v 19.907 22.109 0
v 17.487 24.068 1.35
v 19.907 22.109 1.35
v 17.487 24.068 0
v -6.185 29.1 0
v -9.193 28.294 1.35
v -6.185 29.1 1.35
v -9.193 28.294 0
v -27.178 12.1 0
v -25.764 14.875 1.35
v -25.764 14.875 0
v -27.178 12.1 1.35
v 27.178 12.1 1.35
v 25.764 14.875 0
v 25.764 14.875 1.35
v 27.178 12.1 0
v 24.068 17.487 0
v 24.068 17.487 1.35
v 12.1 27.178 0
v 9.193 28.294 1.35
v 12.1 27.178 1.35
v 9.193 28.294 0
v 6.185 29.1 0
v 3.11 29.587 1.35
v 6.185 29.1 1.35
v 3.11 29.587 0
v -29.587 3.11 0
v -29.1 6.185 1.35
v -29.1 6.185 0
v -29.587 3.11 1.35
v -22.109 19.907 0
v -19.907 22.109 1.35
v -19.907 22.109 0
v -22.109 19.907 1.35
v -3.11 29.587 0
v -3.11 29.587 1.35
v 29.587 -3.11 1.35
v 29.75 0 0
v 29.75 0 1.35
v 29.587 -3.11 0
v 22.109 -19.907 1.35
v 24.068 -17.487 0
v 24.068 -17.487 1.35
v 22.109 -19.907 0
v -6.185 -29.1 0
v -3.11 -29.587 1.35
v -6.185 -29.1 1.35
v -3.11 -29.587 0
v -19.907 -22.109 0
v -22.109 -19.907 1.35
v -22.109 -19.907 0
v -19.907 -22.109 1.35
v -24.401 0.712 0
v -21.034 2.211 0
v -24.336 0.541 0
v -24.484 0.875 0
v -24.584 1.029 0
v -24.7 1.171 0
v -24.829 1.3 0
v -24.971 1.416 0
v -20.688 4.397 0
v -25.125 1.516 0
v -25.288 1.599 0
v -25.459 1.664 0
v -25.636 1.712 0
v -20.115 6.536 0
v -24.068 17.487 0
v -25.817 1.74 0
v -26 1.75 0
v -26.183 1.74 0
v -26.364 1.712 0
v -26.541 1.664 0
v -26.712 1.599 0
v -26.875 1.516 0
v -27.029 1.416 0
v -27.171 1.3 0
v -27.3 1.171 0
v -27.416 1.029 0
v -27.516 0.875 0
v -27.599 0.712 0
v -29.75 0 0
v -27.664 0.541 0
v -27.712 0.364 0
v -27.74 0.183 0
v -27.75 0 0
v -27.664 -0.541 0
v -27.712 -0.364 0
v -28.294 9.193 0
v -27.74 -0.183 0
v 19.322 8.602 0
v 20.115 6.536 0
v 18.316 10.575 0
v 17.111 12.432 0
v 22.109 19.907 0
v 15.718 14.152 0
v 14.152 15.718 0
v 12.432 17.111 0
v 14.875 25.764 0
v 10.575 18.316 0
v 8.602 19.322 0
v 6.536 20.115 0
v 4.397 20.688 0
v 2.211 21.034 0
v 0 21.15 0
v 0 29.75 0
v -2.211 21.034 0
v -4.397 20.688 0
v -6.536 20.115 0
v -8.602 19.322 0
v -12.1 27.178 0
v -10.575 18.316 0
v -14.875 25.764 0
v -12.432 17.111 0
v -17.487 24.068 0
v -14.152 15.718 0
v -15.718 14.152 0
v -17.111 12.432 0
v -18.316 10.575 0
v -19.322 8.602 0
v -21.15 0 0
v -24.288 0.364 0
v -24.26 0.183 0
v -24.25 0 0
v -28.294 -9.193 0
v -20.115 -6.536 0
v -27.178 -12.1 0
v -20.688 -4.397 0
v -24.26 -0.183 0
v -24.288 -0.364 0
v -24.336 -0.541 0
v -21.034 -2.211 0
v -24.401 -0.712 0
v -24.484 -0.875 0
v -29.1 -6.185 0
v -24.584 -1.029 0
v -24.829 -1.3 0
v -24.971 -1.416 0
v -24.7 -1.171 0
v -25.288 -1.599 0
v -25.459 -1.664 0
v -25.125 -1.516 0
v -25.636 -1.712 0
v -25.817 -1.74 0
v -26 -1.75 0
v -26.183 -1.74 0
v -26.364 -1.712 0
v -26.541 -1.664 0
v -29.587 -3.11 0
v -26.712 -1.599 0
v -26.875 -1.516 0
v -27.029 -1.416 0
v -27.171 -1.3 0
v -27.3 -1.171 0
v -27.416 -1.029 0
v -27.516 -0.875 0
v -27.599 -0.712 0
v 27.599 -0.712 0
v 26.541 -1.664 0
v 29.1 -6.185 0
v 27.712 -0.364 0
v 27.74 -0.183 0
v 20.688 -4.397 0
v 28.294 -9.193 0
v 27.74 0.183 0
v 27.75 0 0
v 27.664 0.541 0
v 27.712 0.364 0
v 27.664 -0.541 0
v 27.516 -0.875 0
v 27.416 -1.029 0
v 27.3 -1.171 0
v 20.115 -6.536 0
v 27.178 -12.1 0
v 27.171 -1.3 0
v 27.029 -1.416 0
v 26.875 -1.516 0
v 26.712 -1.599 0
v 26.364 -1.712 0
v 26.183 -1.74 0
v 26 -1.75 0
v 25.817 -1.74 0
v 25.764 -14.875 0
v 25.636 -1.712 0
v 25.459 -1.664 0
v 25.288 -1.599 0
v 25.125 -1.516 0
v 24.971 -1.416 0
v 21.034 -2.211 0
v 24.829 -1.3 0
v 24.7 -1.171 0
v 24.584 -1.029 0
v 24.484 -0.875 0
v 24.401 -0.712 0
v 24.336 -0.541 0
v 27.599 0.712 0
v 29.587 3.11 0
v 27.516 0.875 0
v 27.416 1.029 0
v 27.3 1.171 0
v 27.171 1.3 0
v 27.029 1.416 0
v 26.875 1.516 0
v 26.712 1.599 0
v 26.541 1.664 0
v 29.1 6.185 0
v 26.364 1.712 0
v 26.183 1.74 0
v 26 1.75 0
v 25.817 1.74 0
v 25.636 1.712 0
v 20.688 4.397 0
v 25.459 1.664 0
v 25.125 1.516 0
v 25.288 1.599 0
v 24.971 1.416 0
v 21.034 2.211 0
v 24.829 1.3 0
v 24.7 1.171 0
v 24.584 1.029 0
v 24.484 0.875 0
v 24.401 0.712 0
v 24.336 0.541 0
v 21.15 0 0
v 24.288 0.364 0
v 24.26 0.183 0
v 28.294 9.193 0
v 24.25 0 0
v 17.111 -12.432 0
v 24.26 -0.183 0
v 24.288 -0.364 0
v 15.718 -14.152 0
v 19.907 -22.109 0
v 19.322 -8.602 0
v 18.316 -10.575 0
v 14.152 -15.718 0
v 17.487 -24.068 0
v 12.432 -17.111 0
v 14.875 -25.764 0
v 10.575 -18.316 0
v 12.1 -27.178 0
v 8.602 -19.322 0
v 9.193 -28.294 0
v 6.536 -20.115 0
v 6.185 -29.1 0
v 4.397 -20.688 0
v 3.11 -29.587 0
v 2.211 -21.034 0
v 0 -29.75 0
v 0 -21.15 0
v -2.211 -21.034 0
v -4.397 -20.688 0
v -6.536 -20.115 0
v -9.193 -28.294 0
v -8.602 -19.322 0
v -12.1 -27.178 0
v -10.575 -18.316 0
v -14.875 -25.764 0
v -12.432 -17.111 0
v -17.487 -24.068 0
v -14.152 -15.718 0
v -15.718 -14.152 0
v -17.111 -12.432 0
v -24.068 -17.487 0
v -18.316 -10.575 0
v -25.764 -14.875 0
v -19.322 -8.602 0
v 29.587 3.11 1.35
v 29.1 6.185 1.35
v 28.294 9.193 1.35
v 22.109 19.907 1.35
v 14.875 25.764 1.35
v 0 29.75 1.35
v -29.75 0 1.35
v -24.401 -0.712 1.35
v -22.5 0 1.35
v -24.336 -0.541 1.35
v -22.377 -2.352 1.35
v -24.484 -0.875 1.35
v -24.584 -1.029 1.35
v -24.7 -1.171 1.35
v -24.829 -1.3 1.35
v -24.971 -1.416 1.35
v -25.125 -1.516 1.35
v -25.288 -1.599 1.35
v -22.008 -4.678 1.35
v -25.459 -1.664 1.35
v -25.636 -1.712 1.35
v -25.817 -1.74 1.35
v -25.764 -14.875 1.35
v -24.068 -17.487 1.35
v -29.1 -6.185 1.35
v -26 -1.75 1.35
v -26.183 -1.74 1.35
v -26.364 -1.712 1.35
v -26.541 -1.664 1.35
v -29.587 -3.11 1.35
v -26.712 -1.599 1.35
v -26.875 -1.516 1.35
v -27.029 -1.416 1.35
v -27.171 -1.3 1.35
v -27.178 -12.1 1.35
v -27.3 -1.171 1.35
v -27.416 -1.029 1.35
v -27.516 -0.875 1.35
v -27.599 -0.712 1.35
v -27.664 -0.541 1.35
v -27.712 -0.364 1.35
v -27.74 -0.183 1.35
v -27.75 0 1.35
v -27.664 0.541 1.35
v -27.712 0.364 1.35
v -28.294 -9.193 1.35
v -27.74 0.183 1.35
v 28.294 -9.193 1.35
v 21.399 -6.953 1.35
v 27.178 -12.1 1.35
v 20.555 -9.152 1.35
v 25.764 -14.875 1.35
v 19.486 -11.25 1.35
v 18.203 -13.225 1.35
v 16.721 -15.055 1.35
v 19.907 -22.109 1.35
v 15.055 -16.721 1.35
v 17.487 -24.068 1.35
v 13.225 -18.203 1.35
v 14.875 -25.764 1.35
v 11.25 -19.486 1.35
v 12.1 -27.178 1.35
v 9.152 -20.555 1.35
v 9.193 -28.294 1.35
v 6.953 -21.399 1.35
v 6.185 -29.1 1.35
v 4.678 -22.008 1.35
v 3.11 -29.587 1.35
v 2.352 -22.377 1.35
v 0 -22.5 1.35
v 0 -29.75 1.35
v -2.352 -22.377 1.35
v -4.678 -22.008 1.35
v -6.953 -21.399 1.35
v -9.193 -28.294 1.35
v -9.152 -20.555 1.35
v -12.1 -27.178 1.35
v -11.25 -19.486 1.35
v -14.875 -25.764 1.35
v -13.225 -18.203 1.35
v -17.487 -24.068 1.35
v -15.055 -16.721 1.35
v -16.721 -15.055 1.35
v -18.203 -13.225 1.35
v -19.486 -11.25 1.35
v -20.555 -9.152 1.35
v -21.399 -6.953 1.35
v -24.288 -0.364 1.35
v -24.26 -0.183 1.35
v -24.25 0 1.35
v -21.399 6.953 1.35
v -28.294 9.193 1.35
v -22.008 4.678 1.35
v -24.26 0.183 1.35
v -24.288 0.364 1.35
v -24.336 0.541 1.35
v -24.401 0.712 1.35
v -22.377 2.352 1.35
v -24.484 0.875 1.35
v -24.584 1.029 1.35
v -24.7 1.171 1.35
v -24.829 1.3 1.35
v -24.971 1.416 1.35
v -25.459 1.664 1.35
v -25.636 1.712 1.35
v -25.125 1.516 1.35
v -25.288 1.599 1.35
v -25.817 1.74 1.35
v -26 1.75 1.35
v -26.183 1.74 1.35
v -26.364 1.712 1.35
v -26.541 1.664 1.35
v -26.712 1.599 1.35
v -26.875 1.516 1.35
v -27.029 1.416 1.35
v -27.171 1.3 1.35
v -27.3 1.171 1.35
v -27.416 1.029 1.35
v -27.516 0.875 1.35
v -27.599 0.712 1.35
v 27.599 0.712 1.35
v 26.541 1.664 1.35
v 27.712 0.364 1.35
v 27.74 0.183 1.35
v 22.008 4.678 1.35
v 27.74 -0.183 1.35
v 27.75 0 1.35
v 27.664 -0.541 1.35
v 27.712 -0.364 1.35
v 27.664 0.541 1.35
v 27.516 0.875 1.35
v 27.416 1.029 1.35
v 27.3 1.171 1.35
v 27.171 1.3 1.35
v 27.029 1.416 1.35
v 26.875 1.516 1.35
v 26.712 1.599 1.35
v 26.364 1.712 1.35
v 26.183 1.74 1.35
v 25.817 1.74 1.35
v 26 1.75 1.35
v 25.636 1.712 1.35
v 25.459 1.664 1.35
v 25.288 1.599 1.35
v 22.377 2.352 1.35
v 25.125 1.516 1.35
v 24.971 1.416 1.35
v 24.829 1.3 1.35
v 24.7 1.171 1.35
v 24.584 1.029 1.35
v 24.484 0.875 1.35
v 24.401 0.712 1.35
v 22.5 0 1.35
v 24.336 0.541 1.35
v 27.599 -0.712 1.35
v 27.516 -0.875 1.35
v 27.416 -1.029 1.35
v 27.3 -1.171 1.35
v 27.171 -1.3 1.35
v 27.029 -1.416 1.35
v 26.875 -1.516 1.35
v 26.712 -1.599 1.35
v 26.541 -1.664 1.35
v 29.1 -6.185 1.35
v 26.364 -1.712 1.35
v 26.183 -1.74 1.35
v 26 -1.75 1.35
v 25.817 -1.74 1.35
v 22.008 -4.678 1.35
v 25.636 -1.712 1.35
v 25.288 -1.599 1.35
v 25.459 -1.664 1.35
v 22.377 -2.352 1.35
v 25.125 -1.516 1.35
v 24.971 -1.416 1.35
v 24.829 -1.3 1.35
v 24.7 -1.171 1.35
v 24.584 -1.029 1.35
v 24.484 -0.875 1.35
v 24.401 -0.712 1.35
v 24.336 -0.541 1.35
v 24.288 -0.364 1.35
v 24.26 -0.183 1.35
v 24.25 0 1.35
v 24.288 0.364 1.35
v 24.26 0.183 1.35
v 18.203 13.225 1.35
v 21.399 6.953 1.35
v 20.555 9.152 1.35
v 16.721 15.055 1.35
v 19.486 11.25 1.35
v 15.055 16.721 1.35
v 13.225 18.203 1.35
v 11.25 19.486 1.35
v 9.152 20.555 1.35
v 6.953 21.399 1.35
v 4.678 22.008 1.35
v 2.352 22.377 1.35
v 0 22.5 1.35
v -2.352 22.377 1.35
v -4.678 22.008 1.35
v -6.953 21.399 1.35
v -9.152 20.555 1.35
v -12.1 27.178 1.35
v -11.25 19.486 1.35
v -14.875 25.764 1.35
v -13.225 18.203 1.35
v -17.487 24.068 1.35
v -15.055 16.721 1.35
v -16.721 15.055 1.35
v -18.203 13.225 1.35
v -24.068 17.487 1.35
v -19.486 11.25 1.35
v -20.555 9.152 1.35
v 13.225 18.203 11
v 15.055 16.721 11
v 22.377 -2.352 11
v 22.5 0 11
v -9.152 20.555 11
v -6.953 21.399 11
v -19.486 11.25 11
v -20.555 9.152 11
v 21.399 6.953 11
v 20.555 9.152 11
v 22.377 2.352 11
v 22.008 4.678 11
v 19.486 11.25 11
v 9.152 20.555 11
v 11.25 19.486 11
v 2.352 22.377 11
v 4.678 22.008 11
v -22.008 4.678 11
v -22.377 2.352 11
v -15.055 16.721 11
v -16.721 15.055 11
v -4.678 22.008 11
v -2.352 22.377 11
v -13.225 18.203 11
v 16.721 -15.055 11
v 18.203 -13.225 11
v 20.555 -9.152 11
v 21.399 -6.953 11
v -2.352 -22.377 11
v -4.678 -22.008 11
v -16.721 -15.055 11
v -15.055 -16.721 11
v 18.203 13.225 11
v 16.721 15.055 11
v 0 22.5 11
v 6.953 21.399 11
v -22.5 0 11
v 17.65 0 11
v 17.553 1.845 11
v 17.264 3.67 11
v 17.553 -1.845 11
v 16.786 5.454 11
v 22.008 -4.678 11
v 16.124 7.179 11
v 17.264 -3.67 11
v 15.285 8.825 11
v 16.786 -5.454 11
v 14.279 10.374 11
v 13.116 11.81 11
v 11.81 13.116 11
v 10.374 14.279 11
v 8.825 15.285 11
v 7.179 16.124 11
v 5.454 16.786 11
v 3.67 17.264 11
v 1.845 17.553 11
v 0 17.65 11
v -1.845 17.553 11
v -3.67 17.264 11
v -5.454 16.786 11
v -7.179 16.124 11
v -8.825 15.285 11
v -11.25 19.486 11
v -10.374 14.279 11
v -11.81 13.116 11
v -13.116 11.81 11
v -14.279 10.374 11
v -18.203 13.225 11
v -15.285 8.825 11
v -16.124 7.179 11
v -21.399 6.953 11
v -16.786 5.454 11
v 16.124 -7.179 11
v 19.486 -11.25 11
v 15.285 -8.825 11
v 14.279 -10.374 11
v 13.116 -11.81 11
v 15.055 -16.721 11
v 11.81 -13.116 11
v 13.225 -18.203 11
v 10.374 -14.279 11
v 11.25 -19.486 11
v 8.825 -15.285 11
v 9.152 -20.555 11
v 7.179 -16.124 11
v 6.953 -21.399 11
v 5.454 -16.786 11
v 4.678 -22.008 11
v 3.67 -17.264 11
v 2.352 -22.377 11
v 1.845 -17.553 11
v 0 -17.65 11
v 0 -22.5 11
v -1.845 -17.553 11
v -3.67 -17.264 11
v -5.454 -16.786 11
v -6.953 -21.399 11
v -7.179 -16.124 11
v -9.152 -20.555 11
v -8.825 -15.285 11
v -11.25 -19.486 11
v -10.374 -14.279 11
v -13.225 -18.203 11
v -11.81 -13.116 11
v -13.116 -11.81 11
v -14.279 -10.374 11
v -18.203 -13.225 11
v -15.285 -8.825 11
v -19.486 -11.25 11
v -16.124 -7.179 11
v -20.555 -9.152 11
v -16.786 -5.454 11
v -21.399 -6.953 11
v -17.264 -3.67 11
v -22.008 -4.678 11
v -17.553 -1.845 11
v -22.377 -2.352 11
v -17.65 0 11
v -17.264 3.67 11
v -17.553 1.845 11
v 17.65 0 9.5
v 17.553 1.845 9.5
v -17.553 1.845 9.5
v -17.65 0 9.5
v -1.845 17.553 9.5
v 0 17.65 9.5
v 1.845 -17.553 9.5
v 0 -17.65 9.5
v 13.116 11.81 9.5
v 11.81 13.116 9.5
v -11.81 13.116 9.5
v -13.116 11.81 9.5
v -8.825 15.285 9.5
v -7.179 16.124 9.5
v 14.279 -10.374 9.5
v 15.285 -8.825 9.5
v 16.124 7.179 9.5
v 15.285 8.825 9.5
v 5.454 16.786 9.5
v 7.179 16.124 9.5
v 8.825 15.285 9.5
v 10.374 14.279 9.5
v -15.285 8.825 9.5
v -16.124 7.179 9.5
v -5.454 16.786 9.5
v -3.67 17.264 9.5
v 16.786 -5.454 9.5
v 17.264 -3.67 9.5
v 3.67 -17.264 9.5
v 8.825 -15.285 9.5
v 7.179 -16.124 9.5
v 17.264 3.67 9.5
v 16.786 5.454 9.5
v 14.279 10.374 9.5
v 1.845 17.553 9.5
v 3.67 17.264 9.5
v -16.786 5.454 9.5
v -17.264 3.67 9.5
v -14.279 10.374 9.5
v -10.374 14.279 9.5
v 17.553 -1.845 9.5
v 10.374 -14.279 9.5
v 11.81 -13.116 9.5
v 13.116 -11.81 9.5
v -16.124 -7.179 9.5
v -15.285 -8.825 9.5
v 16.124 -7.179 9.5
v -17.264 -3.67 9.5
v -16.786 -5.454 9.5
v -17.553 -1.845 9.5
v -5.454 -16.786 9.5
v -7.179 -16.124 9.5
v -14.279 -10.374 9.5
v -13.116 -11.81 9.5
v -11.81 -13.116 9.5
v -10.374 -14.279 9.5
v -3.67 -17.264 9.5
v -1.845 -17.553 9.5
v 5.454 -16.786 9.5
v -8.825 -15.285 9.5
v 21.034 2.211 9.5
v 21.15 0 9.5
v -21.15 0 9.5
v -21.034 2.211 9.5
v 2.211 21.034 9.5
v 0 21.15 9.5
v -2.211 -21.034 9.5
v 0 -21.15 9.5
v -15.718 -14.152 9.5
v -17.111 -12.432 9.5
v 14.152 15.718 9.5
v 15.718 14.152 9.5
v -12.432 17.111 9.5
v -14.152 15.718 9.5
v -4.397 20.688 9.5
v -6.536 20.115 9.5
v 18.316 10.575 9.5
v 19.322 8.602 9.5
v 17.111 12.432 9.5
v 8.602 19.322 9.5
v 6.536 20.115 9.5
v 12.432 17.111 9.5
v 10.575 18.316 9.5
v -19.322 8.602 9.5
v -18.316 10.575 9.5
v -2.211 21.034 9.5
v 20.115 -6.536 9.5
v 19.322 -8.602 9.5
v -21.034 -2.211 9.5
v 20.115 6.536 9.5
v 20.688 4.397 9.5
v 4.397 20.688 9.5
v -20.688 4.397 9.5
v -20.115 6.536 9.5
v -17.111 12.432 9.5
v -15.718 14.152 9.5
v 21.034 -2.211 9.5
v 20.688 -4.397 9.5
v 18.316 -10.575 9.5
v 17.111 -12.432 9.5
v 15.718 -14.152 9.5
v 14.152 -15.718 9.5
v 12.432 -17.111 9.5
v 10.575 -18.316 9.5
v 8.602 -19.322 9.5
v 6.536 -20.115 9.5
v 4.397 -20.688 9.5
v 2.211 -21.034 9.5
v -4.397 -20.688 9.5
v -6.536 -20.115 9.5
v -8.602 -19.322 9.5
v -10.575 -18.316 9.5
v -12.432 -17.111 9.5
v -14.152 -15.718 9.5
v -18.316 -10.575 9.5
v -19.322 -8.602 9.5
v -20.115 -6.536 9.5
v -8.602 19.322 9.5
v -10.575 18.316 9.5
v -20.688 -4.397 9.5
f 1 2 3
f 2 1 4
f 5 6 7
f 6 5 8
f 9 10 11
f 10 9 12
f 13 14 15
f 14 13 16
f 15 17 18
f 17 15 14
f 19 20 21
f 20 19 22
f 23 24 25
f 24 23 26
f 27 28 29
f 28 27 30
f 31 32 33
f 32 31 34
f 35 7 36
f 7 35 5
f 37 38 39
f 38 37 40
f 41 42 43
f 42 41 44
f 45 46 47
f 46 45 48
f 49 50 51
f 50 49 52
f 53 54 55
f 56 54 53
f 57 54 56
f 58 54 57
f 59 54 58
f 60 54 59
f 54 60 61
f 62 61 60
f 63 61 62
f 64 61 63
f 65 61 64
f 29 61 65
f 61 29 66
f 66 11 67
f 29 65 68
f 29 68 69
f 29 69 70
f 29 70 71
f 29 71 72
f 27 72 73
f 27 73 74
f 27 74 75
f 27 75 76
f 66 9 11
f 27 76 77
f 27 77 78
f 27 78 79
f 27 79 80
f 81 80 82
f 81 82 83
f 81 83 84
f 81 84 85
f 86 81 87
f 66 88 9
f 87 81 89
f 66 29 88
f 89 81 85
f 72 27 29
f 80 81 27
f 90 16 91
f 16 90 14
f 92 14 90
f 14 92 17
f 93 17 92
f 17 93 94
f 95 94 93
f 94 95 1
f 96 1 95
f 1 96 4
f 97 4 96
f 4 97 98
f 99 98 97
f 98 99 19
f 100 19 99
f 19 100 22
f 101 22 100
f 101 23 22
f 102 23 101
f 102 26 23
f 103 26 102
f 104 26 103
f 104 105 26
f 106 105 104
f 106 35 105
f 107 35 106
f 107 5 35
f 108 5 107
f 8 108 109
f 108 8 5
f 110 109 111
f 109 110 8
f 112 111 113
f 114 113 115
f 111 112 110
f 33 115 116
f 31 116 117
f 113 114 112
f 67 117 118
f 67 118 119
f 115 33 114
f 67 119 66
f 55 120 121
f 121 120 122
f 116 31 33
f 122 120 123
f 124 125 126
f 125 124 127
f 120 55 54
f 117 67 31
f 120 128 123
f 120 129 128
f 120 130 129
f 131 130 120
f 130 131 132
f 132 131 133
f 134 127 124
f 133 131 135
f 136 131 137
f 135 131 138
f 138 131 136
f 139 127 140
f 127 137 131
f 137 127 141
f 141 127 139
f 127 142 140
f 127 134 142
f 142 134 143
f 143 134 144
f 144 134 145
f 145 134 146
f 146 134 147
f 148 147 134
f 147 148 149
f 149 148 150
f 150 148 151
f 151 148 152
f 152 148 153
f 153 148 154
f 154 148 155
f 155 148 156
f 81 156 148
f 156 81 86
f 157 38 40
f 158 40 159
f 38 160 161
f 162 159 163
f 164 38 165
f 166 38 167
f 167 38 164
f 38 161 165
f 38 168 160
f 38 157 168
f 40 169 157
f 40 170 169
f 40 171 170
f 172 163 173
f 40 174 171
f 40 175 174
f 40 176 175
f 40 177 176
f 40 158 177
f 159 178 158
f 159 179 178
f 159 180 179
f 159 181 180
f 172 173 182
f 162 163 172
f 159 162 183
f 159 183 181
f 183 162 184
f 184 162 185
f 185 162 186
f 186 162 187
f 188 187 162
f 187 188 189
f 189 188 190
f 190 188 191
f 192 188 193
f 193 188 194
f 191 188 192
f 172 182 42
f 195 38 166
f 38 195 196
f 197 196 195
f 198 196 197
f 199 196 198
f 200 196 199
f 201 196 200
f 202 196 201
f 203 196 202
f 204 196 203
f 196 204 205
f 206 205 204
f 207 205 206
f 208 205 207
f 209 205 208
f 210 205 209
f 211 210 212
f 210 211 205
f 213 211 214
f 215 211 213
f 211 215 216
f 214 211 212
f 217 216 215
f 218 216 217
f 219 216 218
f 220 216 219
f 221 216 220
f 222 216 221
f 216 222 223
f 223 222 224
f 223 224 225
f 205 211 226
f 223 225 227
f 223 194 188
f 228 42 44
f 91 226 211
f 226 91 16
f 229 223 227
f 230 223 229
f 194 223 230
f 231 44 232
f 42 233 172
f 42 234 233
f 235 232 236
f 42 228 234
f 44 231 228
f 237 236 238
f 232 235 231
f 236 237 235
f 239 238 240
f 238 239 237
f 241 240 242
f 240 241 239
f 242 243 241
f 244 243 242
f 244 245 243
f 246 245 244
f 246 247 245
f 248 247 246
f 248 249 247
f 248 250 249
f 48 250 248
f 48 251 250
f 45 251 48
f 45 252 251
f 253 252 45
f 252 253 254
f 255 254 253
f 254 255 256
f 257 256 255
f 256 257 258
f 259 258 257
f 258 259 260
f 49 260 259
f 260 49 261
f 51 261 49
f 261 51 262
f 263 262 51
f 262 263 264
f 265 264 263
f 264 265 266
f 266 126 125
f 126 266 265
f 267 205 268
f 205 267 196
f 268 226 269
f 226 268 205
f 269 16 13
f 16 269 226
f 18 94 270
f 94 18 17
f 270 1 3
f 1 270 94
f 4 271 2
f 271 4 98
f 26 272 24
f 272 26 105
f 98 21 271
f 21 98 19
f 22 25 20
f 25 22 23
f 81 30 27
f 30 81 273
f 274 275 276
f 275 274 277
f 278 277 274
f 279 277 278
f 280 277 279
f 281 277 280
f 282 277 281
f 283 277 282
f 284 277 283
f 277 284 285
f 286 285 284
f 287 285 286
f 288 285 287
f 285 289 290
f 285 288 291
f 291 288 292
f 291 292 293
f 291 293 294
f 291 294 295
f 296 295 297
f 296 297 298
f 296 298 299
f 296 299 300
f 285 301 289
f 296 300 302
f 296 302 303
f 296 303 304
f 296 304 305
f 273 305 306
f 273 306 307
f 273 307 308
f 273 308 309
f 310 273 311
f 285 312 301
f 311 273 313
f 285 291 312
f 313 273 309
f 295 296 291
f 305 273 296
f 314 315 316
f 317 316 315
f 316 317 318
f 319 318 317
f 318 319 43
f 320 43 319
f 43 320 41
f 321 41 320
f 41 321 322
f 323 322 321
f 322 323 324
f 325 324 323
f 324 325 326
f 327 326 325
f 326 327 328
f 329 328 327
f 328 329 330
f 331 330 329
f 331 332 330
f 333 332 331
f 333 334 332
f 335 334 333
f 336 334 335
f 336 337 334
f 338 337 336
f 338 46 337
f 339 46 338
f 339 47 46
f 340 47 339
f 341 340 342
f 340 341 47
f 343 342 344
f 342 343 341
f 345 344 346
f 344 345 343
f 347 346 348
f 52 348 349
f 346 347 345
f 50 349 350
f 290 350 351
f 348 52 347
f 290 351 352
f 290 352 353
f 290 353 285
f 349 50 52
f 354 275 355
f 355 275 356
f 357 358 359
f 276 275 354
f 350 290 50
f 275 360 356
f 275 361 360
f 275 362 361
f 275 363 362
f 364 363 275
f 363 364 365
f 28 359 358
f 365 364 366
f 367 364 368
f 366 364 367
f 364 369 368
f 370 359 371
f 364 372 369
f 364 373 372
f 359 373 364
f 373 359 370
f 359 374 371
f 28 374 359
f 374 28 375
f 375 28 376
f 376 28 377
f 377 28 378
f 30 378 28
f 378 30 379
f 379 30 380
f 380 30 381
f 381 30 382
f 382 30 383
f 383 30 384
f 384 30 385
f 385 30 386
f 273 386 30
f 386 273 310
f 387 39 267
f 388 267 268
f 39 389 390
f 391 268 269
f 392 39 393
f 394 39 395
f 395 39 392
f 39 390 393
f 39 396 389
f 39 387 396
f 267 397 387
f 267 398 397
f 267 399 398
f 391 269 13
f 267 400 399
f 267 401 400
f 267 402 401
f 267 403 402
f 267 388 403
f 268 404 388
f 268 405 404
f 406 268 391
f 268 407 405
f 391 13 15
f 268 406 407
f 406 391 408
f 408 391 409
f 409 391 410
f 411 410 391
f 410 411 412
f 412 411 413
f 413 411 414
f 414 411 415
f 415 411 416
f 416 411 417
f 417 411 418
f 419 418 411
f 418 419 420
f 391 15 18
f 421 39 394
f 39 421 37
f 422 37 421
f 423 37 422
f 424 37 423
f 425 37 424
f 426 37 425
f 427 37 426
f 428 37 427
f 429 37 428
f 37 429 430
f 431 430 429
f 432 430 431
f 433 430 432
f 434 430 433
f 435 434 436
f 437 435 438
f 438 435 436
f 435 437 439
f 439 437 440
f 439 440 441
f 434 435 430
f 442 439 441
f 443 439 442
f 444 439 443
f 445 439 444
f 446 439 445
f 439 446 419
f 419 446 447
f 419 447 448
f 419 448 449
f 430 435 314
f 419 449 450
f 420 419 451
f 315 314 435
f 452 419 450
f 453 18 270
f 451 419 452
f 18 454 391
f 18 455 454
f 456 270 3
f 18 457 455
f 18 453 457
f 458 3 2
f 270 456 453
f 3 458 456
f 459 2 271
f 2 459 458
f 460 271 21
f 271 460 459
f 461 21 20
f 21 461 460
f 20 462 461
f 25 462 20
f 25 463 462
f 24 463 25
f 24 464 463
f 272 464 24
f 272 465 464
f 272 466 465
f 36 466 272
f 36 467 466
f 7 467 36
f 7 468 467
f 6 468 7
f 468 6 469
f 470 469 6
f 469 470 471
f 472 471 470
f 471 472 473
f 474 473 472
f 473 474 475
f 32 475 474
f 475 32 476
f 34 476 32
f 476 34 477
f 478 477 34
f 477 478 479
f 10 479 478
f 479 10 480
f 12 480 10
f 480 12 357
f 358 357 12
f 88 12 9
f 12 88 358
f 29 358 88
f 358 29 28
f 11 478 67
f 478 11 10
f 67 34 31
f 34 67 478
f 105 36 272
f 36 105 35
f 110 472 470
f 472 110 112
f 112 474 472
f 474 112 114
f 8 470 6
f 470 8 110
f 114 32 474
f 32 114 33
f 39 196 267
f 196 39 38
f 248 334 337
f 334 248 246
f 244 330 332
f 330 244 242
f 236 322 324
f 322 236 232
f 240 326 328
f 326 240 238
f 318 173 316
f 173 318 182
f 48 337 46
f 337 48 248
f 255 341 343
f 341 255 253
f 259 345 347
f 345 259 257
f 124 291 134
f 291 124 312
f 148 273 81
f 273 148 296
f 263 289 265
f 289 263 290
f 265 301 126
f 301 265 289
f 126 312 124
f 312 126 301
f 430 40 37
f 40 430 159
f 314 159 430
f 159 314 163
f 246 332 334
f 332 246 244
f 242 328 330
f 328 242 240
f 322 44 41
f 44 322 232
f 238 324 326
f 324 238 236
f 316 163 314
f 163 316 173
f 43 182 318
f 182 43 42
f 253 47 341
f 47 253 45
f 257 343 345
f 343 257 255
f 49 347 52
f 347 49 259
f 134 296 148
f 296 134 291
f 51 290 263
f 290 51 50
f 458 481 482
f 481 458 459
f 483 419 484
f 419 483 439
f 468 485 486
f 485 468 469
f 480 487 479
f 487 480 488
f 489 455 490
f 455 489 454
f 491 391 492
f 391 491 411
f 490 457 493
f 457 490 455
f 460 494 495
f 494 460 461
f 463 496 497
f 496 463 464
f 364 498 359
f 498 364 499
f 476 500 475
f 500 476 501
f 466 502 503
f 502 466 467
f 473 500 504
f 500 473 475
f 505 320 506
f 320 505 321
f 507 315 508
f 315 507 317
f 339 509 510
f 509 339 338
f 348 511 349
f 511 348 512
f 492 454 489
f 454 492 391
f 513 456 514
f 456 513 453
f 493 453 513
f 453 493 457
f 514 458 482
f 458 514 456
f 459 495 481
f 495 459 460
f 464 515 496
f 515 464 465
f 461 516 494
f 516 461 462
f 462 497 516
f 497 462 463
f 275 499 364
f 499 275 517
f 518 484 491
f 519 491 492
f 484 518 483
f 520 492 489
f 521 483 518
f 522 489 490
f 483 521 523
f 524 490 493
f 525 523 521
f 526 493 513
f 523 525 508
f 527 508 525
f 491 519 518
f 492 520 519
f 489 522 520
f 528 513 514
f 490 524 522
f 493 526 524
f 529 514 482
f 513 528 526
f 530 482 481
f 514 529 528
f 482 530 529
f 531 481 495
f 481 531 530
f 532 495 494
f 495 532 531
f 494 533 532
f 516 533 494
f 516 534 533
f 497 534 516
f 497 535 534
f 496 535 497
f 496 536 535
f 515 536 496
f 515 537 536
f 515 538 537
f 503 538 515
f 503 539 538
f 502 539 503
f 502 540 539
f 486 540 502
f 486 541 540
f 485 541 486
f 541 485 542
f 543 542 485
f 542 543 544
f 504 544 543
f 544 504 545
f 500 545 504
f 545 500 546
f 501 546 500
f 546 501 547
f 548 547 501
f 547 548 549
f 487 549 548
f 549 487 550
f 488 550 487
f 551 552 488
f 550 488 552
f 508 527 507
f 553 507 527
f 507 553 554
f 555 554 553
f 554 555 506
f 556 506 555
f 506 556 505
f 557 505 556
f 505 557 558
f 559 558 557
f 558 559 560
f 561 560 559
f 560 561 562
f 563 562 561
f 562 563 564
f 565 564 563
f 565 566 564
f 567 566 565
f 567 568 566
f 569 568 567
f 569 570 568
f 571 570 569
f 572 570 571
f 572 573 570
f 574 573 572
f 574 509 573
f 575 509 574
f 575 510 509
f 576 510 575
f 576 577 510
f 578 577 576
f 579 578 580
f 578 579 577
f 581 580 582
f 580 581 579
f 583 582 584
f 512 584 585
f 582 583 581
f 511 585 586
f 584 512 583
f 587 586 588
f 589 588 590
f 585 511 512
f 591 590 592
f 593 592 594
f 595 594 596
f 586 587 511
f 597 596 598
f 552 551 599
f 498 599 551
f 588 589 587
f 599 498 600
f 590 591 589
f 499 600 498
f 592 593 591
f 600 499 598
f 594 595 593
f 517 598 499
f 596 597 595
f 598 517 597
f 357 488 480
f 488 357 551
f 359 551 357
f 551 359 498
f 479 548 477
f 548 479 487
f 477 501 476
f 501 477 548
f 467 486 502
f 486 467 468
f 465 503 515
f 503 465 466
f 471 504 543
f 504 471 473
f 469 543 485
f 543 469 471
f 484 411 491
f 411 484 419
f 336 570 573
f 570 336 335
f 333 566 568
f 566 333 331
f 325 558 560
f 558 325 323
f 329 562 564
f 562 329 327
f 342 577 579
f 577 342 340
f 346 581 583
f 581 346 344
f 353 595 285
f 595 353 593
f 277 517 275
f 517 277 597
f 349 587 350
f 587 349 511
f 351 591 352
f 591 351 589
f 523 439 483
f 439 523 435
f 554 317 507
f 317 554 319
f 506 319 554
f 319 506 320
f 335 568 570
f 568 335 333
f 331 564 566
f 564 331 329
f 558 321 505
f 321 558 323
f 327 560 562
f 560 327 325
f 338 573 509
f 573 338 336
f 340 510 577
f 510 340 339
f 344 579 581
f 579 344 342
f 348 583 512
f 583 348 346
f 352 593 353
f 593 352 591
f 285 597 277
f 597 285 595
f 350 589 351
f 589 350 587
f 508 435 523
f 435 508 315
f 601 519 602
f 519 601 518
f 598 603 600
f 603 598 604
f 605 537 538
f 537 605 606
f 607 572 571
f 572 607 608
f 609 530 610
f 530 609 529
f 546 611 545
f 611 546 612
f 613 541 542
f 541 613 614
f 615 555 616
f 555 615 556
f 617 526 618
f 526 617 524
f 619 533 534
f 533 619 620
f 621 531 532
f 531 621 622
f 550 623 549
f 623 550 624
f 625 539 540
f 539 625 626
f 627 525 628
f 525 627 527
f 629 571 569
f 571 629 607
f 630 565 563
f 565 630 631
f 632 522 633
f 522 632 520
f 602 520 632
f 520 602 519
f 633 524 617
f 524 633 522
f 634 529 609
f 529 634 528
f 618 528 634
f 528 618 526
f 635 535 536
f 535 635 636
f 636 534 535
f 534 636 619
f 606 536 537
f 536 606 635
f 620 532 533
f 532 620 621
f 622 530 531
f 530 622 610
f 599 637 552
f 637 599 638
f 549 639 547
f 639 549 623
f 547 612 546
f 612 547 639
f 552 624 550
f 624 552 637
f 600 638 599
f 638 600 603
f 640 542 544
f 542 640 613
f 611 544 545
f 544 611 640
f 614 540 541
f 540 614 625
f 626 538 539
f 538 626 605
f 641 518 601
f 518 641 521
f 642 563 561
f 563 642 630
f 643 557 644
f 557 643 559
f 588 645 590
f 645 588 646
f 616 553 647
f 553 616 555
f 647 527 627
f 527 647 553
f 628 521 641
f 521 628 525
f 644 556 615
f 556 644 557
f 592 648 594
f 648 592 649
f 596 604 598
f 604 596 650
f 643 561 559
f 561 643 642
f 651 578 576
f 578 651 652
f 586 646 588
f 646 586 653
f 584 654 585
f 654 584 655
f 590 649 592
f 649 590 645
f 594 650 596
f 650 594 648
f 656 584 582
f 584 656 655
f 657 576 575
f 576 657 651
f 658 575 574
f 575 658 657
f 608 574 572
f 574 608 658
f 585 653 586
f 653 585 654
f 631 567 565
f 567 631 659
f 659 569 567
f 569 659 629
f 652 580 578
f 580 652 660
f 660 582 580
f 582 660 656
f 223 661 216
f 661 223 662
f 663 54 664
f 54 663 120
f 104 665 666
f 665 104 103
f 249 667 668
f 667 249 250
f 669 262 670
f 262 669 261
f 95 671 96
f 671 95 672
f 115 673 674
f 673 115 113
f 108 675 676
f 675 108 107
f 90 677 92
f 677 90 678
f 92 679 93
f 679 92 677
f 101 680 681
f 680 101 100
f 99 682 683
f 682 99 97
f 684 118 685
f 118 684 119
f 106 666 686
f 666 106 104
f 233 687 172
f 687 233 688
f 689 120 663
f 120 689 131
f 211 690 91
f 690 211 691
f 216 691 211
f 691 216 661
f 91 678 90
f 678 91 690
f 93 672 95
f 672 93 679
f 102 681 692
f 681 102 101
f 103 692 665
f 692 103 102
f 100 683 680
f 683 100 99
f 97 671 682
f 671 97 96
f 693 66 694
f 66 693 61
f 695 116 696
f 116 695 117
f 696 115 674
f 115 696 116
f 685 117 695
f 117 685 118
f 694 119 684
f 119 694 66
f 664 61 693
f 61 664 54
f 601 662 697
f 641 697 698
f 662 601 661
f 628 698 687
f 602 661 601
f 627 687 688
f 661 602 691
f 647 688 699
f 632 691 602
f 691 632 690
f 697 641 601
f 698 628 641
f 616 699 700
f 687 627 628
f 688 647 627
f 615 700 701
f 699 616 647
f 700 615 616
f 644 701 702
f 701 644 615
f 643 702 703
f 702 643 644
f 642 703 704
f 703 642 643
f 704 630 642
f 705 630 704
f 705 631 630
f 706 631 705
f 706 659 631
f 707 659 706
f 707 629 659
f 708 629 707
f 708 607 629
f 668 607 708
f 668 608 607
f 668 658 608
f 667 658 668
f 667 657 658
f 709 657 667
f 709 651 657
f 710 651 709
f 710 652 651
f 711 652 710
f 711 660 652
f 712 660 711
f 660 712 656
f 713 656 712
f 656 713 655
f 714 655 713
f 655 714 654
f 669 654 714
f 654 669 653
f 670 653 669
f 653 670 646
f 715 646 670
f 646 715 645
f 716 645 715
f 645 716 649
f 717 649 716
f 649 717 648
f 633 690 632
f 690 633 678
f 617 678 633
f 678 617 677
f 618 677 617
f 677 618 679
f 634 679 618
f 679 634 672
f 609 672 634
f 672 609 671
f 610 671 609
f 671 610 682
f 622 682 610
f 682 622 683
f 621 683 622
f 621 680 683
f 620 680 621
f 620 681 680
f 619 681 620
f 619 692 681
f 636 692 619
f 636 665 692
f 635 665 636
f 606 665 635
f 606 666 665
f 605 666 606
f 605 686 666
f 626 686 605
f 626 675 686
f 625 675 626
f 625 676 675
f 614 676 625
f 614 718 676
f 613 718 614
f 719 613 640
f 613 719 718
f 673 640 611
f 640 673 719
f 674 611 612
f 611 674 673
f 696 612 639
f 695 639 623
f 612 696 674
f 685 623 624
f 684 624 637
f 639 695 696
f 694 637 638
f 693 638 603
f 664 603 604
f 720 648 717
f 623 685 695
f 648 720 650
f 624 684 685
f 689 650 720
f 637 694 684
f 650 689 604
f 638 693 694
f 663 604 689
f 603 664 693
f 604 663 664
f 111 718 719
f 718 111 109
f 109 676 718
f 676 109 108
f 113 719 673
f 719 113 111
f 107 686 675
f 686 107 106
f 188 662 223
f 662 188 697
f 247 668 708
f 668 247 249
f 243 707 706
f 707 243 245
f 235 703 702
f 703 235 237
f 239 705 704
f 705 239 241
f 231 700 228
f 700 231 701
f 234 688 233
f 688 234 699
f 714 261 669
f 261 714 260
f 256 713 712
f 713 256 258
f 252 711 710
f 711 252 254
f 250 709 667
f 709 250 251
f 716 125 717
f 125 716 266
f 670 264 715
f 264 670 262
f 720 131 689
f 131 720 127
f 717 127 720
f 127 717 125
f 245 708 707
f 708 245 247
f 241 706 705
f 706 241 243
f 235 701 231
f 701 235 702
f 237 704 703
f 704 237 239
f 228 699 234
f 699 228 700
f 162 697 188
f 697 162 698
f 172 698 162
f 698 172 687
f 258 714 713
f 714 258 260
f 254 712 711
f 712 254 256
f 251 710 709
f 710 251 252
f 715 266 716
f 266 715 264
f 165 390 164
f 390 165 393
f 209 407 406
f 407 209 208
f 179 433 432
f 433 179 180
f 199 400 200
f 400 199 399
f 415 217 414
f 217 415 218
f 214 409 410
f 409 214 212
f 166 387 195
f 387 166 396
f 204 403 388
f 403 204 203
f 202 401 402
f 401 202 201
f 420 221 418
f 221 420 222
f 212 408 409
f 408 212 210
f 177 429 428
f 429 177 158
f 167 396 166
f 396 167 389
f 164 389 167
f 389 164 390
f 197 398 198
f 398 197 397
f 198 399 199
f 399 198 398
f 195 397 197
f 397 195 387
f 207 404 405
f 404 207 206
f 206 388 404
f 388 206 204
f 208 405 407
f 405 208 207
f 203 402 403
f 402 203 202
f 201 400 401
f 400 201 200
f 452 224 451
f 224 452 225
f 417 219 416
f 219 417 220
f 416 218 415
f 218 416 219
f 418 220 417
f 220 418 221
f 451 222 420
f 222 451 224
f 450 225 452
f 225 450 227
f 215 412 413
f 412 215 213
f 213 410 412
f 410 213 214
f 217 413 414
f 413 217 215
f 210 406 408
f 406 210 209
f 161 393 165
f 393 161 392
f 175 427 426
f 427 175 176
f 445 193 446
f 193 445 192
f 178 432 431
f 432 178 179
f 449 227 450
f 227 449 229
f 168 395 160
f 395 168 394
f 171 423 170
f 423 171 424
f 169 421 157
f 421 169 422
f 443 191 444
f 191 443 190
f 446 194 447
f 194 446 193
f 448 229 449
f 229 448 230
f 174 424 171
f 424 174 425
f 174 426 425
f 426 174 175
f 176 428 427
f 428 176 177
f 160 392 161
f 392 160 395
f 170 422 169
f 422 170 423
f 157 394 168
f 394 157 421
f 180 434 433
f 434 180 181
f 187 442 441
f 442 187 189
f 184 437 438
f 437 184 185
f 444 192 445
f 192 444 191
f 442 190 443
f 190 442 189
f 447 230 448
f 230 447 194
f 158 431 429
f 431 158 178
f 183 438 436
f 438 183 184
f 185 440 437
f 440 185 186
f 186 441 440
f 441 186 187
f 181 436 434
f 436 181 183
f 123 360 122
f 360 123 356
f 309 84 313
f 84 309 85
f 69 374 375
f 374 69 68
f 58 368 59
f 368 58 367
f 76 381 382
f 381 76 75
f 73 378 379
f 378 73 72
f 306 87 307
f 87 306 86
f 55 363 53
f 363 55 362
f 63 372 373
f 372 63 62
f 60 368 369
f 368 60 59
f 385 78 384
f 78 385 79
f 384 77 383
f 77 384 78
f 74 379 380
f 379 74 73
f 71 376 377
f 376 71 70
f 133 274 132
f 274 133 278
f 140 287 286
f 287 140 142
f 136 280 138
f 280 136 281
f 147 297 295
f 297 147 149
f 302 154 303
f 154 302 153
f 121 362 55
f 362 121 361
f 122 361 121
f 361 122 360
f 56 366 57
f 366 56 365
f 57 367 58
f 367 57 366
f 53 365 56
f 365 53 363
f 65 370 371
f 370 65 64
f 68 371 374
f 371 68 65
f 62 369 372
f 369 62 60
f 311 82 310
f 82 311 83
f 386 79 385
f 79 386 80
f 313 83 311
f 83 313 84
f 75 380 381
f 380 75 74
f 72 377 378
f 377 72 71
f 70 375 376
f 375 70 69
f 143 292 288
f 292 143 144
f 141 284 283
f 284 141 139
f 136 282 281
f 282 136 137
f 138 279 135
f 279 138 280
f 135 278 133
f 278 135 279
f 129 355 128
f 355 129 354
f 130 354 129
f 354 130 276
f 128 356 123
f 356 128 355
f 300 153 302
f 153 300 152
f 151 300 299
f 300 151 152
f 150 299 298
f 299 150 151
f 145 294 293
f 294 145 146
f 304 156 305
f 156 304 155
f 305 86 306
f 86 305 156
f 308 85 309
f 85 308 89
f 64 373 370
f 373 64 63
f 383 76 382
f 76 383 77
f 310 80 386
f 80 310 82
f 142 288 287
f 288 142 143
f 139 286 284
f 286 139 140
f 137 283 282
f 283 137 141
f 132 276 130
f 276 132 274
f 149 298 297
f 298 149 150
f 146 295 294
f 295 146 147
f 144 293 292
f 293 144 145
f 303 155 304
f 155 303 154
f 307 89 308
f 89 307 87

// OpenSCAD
$fn=60;
module main() {
cylinder (r=59.5/2, h=1.35);
cylinder (r=45/2, h=11);

}

difference ()
{
main();
cylinder (r=35.3/2, h=11);
cylinder (r=(45/2)-1.35, h=9.5);

//trou
translate([(52/2),0,0]) cylinder (r=3.5/2, h=1.5);
translate([-(52/2),0,0])cylinder (r=3.5/2, h=1.5);

}
